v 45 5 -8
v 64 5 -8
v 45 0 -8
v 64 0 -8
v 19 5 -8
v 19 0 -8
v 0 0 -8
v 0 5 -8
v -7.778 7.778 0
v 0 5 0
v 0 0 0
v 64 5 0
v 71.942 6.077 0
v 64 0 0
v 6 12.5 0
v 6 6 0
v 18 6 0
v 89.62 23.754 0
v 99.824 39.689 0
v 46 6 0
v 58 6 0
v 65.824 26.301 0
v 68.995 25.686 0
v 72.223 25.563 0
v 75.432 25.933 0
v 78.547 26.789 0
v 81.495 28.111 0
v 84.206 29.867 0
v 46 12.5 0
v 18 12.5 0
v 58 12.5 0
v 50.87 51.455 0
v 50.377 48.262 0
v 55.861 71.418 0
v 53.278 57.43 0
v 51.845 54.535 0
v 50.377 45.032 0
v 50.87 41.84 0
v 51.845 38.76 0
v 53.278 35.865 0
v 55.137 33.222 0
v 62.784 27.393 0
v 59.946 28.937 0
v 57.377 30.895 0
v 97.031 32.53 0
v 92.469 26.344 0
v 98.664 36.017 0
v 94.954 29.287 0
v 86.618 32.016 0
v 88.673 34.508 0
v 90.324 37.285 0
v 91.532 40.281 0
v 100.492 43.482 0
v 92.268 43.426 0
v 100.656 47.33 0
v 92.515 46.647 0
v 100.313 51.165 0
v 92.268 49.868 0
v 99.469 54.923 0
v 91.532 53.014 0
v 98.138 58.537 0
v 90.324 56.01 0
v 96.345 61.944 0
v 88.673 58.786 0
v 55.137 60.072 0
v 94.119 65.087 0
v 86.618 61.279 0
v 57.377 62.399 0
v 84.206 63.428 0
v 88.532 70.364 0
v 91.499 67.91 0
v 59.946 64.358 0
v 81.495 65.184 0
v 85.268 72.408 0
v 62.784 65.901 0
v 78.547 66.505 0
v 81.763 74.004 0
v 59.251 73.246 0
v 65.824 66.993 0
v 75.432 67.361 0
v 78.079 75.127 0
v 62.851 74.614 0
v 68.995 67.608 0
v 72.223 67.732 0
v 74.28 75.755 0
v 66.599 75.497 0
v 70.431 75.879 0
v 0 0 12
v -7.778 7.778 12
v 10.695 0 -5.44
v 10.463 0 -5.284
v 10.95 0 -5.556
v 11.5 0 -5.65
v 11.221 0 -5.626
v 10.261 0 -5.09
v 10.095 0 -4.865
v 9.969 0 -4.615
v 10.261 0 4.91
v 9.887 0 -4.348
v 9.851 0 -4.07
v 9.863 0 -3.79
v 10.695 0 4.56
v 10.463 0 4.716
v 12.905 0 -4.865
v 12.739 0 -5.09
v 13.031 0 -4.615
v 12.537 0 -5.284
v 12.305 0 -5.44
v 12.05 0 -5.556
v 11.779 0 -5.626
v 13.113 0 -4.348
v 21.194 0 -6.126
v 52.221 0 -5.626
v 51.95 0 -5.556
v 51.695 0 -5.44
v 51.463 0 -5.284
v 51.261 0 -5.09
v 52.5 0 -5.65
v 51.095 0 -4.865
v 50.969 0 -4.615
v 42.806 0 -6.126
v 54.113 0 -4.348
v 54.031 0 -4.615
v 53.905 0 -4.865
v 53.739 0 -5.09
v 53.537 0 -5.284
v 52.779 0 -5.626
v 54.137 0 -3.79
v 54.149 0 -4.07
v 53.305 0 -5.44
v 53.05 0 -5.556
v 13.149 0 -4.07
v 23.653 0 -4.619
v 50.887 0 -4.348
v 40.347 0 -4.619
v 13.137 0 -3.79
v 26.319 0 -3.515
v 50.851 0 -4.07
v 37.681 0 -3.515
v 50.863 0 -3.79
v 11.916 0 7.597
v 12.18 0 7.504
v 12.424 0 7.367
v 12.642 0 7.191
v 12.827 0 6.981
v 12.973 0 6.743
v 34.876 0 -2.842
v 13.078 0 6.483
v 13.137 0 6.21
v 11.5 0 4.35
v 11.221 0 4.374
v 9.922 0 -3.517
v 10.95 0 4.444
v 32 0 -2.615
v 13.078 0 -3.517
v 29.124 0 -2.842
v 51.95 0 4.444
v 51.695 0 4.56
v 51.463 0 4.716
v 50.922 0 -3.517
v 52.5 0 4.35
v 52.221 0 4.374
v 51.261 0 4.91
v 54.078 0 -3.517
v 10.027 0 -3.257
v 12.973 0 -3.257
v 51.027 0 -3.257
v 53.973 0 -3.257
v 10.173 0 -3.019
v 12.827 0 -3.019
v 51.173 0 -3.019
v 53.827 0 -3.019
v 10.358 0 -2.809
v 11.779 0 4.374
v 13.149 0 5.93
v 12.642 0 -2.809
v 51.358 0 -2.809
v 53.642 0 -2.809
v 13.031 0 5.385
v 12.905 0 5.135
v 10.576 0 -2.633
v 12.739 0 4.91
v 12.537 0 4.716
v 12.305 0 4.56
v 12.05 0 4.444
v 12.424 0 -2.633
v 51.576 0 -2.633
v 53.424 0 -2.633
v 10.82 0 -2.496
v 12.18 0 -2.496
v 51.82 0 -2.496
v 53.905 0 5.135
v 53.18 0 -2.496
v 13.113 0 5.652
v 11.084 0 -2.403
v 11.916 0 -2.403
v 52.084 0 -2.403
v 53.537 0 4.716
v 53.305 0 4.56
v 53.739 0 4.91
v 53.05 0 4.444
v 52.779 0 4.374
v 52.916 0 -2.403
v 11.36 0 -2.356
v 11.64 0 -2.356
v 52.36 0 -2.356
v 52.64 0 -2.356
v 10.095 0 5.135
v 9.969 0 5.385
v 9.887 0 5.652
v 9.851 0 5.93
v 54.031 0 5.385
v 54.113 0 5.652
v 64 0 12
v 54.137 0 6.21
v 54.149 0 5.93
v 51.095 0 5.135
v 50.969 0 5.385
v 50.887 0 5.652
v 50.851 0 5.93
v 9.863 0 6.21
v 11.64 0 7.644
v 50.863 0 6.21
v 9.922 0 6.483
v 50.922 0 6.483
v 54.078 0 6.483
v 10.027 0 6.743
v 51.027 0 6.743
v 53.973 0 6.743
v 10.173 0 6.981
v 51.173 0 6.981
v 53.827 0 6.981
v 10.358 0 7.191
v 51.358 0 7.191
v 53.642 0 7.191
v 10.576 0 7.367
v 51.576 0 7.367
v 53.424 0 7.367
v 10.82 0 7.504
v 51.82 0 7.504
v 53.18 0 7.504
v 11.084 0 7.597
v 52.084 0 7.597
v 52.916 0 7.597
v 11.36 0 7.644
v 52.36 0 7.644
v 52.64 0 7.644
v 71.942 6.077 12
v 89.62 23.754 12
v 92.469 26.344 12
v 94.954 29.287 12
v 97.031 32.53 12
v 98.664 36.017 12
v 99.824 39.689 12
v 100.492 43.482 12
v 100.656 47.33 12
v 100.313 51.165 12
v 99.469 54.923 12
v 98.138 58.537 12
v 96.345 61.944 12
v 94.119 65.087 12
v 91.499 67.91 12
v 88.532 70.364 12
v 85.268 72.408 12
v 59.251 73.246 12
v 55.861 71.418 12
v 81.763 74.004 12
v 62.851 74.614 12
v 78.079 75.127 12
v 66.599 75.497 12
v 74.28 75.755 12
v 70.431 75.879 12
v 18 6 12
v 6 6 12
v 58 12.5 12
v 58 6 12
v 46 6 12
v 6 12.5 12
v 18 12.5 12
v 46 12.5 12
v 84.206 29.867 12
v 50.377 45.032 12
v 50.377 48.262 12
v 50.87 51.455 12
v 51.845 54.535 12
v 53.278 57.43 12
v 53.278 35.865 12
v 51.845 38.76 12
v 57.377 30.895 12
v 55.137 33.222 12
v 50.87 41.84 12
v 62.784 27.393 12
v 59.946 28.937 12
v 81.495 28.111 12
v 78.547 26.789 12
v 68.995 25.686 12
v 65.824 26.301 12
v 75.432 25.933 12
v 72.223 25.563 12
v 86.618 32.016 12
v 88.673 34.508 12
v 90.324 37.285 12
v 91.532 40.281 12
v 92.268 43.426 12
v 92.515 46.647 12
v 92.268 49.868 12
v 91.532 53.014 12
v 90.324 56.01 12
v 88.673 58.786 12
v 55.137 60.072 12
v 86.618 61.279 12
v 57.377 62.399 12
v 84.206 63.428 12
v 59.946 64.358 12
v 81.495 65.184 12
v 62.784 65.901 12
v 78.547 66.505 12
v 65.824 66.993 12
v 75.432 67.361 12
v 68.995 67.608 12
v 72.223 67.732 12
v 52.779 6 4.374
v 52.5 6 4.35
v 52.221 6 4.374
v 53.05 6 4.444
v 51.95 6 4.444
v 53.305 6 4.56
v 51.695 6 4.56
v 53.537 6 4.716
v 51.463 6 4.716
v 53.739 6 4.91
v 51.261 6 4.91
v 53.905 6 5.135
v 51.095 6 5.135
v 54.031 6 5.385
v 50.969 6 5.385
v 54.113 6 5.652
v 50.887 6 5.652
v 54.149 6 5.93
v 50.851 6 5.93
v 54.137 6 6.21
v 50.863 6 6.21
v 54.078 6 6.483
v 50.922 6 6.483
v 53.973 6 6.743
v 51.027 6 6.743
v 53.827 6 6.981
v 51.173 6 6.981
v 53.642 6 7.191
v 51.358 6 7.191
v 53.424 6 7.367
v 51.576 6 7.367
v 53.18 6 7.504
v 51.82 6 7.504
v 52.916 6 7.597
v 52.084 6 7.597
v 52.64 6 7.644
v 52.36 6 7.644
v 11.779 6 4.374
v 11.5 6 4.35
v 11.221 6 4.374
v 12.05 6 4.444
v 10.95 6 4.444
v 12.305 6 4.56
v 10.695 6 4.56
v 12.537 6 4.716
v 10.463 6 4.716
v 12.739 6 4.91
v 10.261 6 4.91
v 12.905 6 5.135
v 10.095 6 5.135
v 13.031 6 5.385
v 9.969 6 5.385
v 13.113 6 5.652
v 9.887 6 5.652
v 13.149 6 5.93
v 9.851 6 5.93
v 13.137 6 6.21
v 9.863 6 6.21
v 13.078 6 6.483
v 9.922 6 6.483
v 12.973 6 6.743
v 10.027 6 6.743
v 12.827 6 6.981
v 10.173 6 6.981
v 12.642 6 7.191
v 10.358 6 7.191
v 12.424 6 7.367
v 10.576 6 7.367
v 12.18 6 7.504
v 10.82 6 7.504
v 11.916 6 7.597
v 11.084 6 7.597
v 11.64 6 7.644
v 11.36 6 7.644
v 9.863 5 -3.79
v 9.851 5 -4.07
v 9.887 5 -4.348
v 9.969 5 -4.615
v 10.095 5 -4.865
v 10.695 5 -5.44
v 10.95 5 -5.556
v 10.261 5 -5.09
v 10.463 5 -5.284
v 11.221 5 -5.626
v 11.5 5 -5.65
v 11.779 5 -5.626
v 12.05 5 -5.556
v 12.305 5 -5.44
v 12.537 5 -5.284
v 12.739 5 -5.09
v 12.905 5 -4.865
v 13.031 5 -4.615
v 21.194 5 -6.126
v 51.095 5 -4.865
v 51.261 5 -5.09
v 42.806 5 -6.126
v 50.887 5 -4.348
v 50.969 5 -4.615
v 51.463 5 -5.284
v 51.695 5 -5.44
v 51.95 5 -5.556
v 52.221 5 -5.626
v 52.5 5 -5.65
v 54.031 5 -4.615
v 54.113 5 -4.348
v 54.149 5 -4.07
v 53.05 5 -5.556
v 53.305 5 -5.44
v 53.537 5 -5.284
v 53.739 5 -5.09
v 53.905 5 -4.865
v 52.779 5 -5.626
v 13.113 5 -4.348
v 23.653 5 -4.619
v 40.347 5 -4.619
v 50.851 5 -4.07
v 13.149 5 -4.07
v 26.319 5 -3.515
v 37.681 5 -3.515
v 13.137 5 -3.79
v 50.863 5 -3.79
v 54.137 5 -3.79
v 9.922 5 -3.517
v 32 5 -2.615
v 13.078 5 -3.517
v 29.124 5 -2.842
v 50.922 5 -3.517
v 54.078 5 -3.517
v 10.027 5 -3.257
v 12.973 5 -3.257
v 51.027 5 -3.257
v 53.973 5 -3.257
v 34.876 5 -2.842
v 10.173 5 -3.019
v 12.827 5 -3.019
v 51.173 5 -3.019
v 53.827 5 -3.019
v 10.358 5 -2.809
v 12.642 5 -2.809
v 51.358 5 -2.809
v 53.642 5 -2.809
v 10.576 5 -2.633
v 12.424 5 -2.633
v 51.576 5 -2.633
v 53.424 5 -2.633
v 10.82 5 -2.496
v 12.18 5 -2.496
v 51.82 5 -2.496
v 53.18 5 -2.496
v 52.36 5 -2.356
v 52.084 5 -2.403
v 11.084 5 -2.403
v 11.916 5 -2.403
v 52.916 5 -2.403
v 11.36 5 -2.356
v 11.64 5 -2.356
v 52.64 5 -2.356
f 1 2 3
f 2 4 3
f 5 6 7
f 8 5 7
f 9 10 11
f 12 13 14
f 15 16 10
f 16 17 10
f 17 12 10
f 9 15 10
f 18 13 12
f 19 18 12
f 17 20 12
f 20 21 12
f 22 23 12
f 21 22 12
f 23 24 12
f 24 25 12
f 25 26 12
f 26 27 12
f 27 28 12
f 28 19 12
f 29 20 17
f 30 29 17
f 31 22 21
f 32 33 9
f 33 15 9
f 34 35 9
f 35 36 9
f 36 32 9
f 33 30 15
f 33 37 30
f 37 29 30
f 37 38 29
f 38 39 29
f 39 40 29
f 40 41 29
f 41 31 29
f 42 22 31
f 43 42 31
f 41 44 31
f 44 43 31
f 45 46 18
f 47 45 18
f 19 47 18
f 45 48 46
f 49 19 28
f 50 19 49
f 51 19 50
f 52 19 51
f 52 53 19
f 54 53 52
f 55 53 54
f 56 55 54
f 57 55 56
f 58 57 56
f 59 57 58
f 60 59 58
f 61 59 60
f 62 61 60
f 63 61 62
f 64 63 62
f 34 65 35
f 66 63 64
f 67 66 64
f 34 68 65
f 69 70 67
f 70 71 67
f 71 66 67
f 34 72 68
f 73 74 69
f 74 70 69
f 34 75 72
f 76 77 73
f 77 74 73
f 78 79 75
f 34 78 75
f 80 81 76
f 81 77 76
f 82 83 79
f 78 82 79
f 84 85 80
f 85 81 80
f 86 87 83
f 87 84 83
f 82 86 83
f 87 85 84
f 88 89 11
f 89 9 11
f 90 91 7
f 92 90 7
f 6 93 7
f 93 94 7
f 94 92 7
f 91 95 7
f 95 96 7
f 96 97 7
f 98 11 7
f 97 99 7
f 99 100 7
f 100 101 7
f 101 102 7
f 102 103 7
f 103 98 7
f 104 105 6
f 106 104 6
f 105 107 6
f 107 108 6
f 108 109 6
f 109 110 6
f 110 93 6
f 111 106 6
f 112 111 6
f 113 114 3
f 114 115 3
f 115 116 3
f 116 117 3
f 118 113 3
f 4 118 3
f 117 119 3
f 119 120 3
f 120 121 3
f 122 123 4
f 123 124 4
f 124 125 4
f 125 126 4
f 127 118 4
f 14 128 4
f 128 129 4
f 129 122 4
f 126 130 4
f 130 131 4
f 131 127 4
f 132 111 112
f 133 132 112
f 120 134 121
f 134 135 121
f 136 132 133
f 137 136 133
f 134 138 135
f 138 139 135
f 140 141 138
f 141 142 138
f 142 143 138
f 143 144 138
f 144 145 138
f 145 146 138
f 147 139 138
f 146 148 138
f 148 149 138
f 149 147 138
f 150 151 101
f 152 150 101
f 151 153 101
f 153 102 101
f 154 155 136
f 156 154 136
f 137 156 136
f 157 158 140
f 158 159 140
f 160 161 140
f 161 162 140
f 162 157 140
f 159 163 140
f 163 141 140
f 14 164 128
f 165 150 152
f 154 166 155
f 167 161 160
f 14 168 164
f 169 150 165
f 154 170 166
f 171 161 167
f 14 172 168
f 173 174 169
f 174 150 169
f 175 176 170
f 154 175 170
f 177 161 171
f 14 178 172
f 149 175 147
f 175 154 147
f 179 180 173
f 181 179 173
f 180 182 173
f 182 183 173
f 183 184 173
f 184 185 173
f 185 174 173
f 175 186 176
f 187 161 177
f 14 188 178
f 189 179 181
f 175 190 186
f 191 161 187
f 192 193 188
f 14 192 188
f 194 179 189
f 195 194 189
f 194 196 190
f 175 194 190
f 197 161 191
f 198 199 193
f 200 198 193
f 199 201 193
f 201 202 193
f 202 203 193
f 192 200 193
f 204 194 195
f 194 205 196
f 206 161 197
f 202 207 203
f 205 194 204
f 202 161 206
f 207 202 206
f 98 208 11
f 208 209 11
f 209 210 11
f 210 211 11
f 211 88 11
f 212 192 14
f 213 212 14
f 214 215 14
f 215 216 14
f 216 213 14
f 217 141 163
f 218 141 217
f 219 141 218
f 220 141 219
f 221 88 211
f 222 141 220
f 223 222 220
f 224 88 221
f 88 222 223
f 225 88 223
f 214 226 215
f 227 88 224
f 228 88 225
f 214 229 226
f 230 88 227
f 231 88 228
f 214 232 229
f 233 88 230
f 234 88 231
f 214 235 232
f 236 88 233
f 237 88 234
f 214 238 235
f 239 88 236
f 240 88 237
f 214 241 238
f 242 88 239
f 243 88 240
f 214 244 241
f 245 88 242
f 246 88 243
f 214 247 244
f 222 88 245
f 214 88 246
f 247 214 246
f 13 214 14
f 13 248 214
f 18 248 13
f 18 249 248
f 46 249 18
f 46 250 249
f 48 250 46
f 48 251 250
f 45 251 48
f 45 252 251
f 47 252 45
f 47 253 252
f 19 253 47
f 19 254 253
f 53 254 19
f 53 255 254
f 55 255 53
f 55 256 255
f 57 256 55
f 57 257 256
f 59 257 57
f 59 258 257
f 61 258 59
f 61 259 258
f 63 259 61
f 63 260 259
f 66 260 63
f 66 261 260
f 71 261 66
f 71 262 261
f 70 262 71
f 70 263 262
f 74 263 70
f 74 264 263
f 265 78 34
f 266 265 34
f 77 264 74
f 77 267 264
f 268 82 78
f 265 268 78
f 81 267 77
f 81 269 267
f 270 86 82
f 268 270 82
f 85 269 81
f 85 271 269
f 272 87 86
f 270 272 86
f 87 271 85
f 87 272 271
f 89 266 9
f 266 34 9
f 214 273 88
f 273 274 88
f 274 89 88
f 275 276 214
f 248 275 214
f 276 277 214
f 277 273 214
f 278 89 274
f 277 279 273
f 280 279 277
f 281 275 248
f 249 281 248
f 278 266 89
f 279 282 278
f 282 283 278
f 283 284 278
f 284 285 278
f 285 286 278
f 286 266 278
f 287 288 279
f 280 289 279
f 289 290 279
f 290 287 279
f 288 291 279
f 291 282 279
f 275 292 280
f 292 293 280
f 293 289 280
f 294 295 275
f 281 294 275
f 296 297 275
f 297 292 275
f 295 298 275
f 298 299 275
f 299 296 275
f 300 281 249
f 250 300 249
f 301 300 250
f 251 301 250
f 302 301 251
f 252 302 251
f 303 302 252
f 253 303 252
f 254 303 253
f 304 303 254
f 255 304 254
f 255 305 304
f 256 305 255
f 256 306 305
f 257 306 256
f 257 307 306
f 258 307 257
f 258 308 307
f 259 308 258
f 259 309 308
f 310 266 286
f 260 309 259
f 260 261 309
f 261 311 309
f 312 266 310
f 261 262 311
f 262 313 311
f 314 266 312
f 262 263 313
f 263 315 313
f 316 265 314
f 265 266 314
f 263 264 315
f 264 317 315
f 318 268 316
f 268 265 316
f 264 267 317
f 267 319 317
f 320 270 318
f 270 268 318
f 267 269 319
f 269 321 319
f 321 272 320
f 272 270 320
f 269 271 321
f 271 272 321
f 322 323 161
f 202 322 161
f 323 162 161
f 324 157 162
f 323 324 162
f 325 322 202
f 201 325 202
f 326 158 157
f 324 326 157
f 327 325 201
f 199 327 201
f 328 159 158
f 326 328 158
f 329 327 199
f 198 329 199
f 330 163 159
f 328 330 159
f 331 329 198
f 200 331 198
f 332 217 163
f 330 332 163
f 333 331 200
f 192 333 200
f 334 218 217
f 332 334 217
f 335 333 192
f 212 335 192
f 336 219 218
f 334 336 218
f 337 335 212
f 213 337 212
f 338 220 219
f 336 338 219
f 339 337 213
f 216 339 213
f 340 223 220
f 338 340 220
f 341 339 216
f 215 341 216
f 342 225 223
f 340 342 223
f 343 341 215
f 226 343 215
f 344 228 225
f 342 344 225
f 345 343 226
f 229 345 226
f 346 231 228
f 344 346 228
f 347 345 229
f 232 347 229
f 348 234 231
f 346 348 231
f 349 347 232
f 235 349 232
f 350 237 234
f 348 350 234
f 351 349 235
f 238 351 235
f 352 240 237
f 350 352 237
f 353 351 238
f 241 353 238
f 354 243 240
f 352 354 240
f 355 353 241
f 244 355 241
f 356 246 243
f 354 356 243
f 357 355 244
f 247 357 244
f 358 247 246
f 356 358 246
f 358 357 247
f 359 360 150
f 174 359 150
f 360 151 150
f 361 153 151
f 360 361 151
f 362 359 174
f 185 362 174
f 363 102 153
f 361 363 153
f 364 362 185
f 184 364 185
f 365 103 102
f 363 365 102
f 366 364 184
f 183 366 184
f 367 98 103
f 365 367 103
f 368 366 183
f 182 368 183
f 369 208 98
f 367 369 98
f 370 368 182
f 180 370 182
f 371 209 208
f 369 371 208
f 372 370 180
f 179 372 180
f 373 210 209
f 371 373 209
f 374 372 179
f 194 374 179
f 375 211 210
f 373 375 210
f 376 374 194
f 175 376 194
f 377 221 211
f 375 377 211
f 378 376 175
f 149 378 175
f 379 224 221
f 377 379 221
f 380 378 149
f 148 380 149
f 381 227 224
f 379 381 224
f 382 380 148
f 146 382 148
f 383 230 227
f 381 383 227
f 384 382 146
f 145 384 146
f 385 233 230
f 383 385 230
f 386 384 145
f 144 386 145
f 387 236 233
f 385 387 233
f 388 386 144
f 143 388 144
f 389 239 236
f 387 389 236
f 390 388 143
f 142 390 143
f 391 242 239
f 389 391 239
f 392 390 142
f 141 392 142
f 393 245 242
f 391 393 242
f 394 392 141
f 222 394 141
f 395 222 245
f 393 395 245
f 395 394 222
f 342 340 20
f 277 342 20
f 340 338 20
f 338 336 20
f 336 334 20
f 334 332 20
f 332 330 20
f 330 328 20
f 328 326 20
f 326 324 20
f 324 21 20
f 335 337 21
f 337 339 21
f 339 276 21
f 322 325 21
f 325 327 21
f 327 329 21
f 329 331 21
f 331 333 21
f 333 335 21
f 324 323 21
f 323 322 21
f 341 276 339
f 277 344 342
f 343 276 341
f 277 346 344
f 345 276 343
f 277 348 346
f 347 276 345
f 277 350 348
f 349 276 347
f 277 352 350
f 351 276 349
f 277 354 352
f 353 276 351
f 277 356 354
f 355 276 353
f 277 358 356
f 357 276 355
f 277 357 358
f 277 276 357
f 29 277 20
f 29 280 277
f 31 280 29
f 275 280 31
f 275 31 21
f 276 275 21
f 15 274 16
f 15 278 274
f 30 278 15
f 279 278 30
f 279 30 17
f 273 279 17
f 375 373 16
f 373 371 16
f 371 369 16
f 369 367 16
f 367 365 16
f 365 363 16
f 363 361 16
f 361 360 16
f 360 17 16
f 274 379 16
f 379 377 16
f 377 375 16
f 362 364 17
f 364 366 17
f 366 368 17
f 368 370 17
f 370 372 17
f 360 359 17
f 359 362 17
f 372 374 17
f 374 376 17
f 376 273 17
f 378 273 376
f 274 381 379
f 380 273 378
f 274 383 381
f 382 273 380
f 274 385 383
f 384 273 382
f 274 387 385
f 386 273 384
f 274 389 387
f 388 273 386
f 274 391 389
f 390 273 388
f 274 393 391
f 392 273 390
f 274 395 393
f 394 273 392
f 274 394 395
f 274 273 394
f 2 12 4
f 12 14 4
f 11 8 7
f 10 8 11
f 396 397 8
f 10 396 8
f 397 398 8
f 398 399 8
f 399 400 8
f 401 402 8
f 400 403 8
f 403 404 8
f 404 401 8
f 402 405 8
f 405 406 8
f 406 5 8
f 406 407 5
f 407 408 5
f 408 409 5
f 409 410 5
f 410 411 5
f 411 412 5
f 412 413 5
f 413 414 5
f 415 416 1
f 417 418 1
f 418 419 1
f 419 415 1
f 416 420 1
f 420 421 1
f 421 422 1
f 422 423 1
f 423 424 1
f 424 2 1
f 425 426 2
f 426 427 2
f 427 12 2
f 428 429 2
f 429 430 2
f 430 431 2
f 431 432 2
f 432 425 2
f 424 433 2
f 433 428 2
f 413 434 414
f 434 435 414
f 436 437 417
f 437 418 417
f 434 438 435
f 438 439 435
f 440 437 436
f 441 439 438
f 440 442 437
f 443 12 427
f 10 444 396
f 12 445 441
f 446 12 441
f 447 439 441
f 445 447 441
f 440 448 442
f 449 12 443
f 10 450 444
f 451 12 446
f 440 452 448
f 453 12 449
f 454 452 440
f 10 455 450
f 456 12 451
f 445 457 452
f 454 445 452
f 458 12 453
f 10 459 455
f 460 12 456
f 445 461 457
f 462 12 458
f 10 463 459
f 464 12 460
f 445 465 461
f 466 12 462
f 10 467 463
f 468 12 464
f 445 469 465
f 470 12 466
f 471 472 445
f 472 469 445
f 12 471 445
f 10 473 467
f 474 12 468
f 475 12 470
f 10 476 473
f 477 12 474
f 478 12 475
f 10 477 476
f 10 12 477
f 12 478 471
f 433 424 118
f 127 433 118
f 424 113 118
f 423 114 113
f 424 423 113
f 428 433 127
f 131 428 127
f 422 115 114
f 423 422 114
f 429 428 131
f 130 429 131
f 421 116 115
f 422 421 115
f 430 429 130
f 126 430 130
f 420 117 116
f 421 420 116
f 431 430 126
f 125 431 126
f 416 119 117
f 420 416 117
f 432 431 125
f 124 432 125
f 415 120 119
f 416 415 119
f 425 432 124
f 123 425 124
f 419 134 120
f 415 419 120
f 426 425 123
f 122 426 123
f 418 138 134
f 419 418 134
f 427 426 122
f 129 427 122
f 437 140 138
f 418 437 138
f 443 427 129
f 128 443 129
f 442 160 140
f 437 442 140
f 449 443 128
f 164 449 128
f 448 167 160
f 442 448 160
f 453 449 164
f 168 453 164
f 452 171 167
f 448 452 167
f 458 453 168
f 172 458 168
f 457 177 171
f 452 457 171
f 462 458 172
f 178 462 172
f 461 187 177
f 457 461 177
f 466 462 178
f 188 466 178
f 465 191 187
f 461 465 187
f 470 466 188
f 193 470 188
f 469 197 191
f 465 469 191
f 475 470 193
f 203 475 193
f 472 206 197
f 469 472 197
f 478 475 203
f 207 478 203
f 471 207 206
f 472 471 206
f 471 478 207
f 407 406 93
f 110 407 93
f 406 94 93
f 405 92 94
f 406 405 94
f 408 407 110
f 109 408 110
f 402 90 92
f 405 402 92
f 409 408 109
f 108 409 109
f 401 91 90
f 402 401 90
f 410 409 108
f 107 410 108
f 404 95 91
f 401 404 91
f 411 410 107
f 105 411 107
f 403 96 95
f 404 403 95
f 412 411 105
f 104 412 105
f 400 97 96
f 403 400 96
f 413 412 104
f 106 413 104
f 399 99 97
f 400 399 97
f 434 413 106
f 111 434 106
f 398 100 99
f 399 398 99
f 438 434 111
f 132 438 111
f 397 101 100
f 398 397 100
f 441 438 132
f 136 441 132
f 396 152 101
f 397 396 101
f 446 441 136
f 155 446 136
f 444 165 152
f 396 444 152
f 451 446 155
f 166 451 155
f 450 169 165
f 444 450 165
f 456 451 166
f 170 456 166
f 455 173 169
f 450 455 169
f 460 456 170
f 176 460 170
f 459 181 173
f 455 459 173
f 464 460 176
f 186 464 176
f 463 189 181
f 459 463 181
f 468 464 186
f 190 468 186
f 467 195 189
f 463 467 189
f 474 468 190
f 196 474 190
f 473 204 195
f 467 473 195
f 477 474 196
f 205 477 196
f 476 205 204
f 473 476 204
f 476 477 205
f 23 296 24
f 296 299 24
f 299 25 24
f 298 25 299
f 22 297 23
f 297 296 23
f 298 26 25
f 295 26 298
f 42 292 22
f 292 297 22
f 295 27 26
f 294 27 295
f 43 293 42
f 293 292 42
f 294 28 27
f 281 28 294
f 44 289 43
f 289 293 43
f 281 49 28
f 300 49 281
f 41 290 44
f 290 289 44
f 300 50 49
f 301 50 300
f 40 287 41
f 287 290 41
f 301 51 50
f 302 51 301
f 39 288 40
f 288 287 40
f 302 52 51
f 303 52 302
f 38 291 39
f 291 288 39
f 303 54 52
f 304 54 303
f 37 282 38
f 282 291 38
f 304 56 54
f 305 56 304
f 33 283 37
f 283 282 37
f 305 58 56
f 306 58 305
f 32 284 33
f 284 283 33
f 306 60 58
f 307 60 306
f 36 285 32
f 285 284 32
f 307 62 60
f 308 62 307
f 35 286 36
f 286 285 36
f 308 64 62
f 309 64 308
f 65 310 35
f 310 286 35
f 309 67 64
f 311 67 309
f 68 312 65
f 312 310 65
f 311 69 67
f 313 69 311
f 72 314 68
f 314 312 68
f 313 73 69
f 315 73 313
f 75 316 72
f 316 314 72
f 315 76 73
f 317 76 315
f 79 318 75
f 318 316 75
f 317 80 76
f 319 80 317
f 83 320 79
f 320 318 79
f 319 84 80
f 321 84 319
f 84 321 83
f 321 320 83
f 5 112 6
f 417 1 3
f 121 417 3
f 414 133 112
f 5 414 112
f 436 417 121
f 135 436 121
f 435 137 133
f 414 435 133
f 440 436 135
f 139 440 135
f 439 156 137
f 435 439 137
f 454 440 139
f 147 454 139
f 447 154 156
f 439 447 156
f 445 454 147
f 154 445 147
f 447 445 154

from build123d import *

# Parameters (mm, degrees)
BOSS_EXTRUDE2_DEPTH     = 12
SKETCH5_R               = 1.65
CUT_EXTRUDE3_DEPTH      = 6
SKETCH6_W               = 12
SKETCH6_H               = 6.5
CUT_EXTRUDE4_DEPTH      = 13
SKETCH8_W               = 64
SKETCH8_H               = 8
BOSS_EXTRUDE3_DEPTH     = 5
SKETCH11_R              = 1.65
CUT_EXTRUDE7_DEPTH      = 76.896039473
SKETCH13_R              = 21.1
CUT_EXTRUDE8_DEPTH      = 21
CUT_EXTRUDE9_DEPTH      = 71.896039473
CUT_EXTRUDE9_DEPTH_BACK = 10


with BuildPart() as part:
    # Sketch1 → Boss-Extrude2 (new body)
    with BuildSketch(Plane.XY):
        with BuildLine():
            Line((0, 0), (64, 0))
            Line((64, 0), (71.941945847, 6.076635266))
            Line((71.941945847, 6.076635266), (89.619615377, 23.754304796))
            ThreePointArc((89.619615377, 23.754304796), (95.283552654, 63.552389681), (55.861435714, 71.4177849))
            Line((55.861435714, 71.4177849), (-7.778174593, 7.778174593))
            Line((-7.778174593, 7.778174593), (0, 0))
        make_face()
    extrude(amount=BOSS_EXTRUDE2_DEPTH)

    # Sketch5 → Cut-Extrude3 (cut)
    with BuildSketch(Plane.XZ):
        with Locations((11.5, 6)):
            Circle(SKETCH5_R)
        with Locations((52.5, 6)):
            Circle(SKETCH5_R)
    extrude(amount=-CUT_EXTRUDE3_DEPTH, mode=Mode.SUBTRACT)

    # Sketch6 → Cut-Extrude4 (cut, through all)
    with BuildSketch(Plane.XY.offset(12)):
        with Locations((12, 9.25)):
            Rectangle(SKETCH6_W, SKETCH6_H)
        with Locations((52, 9.25)):
            Rectangle(SKETCH6_W, SKETCH6_H)
    extrude(amount=-CUT_EXTRUDE4_DEPTH, mode=Mode.SUBTRACT)

    # Sketch8 → Boss-Extrude3 (add)
    with BuildSketch(Plane.XZ):
        with Locations((32, -4)):
            Rectangle(SKETCH8_W, SKETCH8_H)
    extrude(amount=-BOSS_EXTRUDE3_DEPTH)

    # Sketch11 → Cut-Extrude7 (cut, through all)
    with BuildSketch(Plane.XZ):
        with Locations((11.5, -4)):
            Circle(SKETCH11_R)
        with Locations((52.5, -4)):
            Circle(SKETCH11_R)
    extrude(amount=-CUT_EXTRUDE7_DEPTH, mode=Mode.SUBTRACT)

    # Sketch13 → Cut-Extrude8 (cut, through all)
    with BuildSketch(Plane.XY.offset(12)):
        with Locations((71.414976798, 46.64721049)):
            Circle(SKETCH13_R)
    extrude(amount=-CUT_EXTRUDE8_DEPTH, mode=Mode.SUBTRACT)

    # Sketch15 → Cut-Extrude9 (cut, two sides)
    with BuildSketch(Plane(origin=(0, 5, 0), x_dir=(1, 0, 0), z_dir=(0, 1, 0))) as cut_extrude9_sk:
        with BuildLine():
            Line((45, 8), (19, 8))
            ThreePointArc((19, 8), (32, 2.615223689), (45, 8))
        make_face()
    extrude(amount=CUT_EXTRUDE9_DEPTH, mode=Mode.SUBTRACT)
    extrude(cut_extrude9_sk.sketch, amount=-CUT_EXTRUDE9_DEPTH_BACK, mode=Mode.SUBTRACT)


solid = part.part
